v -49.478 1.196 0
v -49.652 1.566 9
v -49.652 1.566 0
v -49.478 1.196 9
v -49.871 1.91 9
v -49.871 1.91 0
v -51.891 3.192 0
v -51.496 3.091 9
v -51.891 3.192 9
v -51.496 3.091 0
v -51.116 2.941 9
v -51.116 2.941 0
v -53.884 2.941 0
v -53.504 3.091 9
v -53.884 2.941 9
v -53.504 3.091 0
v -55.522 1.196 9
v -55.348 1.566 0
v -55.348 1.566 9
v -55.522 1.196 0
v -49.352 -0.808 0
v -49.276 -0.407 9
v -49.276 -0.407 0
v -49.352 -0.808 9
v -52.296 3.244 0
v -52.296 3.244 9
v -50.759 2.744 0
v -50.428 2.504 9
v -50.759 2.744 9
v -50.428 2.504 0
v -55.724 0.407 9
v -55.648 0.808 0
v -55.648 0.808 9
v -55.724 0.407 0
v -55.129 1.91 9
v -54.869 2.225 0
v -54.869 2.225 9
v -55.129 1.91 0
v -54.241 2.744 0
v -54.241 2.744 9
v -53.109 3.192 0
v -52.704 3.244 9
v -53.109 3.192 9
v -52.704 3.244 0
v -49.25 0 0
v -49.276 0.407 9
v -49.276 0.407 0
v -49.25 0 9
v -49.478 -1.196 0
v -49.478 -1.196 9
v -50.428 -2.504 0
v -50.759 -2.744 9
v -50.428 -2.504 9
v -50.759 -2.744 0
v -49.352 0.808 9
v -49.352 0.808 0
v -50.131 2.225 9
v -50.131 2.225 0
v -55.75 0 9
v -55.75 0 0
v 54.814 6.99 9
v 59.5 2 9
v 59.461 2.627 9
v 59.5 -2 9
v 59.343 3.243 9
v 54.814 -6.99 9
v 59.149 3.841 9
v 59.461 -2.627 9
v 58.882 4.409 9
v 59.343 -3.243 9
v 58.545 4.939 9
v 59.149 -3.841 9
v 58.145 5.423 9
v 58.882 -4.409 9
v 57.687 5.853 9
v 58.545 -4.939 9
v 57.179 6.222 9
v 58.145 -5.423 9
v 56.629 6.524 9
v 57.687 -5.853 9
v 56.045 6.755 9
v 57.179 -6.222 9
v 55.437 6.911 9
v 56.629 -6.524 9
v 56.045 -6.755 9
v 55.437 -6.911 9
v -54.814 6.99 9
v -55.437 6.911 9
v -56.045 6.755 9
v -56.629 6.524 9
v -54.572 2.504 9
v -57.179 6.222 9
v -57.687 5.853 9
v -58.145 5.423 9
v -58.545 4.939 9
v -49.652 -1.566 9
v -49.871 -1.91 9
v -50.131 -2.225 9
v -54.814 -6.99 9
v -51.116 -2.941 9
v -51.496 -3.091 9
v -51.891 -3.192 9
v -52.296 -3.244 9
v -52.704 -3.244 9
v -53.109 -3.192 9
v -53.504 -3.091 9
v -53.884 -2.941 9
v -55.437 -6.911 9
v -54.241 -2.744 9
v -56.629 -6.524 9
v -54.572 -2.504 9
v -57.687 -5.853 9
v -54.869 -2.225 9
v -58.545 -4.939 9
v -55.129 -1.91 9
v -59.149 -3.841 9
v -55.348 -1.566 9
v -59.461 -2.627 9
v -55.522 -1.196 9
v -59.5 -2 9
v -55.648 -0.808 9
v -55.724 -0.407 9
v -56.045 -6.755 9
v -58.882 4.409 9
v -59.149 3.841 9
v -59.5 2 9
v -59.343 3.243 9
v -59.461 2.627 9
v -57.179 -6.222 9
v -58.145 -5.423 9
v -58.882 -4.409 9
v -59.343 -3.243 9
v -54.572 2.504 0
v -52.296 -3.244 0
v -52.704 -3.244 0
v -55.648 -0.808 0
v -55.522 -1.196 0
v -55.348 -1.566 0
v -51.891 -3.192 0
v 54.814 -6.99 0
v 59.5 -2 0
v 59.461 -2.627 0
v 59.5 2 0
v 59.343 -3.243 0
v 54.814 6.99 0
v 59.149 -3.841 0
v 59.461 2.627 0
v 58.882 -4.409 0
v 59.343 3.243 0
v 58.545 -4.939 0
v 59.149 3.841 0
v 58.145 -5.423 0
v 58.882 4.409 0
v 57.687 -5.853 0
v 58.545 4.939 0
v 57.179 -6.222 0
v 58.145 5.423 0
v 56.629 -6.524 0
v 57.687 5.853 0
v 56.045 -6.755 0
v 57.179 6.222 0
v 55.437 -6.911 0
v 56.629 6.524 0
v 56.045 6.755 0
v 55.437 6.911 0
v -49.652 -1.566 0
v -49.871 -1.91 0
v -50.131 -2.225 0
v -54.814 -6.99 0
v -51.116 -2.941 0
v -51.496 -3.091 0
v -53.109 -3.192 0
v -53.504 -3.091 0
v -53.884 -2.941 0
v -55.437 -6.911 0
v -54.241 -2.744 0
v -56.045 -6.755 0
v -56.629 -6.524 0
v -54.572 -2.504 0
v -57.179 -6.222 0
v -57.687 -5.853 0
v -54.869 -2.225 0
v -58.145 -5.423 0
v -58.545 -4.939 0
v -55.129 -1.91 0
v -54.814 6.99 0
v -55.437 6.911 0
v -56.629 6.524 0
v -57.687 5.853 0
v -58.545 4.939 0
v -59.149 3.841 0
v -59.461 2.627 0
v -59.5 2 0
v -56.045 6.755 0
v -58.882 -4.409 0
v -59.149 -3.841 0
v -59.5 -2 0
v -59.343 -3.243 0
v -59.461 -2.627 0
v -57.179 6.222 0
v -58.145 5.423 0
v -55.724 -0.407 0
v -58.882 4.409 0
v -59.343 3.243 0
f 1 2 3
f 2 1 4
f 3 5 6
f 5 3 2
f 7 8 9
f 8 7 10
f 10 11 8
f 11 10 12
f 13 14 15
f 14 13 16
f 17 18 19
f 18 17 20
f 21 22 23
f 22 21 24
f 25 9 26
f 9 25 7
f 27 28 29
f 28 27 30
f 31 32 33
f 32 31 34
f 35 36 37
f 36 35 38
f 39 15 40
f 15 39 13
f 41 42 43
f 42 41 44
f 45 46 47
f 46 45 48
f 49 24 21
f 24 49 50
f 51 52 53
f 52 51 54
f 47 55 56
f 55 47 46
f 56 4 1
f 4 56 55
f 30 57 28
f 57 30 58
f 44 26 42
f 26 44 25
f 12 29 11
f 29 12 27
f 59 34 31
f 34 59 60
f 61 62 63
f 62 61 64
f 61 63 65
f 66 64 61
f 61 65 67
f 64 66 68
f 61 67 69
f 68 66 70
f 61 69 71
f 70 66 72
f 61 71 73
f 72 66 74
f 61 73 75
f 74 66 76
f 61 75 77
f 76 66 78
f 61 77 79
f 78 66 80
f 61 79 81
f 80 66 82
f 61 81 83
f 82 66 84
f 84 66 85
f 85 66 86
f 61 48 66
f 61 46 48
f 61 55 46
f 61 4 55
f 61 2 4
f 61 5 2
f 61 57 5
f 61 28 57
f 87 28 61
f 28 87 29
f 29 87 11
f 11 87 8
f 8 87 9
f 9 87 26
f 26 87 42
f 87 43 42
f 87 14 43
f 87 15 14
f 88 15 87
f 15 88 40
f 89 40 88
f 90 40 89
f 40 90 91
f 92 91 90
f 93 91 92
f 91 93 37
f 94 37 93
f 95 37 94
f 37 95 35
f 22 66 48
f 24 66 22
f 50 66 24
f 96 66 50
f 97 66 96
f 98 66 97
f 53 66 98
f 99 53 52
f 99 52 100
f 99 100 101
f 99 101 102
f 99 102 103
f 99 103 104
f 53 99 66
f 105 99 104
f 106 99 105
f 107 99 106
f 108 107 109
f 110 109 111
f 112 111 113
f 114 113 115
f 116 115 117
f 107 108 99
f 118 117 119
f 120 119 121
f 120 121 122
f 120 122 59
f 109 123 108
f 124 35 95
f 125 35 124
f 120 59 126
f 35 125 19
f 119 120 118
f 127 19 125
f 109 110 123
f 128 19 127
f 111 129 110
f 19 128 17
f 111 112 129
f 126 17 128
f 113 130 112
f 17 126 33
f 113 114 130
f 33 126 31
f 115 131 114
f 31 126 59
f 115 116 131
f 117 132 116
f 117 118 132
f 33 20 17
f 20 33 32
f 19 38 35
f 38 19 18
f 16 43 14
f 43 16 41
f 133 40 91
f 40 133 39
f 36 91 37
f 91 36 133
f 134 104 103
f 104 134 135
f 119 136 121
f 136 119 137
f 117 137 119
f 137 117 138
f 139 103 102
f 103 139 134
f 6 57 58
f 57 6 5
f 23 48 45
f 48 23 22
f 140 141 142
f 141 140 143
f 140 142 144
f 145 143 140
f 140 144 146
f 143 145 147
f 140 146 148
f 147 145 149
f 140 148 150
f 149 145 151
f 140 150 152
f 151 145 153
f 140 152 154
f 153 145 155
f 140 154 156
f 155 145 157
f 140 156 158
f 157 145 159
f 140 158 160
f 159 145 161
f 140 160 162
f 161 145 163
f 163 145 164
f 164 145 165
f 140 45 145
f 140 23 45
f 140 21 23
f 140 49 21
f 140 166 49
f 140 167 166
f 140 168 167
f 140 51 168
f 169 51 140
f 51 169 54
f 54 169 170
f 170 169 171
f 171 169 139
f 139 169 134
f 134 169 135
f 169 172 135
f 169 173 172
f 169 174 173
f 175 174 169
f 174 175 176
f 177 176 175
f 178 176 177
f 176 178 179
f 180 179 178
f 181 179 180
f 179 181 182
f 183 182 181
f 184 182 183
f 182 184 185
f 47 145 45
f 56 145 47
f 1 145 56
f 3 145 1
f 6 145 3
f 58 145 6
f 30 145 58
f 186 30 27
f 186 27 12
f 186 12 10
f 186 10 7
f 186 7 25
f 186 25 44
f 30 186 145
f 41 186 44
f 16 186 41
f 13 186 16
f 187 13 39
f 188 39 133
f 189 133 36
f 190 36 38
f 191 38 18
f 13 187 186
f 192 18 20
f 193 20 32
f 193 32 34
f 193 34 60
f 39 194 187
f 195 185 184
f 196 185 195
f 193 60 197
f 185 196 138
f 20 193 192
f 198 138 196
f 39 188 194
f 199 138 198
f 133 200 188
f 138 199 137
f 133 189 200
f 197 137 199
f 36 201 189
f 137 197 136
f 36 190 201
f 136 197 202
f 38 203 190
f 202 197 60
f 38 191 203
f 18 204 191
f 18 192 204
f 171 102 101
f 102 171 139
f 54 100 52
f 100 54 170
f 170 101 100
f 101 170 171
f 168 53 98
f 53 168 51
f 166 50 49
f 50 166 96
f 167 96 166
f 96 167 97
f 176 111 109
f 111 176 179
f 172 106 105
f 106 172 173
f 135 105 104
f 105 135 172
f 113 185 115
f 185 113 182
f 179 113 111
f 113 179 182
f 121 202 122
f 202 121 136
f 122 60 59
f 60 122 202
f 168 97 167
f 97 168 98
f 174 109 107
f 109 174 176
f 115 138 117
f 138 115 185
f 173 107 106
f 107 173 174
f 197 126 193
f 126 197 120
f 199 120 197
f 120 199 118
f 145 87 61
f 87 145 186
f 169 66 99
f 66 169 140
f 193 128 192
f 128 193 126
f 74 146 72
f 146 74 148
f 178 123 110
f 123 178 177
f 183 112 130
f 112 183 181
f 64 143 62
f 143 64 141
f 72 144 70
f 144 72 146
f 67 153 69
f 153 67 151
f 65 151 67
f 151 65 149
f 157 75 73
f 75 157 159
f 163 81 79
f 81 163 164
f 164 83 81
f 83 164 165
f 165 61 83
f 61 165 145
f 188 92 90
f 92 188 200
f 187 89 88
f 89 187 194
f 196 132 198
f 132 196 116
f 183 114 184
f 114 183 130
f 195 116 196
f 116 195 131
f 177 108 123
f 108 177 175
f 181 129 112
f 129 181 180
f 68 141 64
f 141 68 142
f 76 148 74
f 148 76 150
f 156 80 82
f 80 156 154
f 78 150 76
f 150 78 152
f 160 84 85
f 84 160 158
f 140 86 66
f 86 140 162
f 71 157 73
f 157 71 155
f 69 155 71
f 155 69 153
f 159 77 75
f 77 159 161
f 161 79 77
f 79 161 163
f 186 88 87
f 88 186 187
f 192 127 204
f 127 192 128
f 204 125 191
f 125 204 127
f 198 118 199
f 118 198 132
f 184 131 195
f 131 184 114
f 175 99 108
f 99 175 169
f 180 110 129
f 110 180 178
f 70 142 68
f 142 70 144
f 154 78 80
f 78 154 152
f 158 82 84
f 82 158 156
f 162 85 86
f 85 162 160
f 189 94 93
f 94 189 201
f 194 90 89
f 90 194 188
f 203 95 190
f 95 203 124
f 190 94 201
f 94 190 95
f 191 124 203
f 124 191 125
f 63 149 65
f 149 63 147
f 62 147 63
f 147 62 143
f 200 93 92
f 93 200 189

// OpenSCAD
$fn = 50;


difference() {
	union() {
		hull() {
			translate(v = [-54.5000000000, 2.0000000000, 0]) {
				cylinder(h = 9, r = 5);
			}
			translate(v = [54.5000000000, 2.0000000000, 0]) {
				cylinder(h = 9, r = 5);
			}
			translate(v = [-54.5000000000, -2.0000000000, 0]) {
				cylinder(h = 9, r = 5);
			}
			translate(v = [54.5000000000, -2.0000000000, 0]) {
				cylinder(h = 9, r = 5);
			}
		}
	}
	union() {
		translate(v = [-52.5000000000, 0.0000000000, 0]) {
			cylinder(h = 9, r = 3.2500000000);
		}
		translate(v = [-52.5000000000, 0.0000000000, 0]) {
			cylinder(h = 9, r = 1.8000000000);
		}
		translate(v = [-52.5000000000, 0.0000000000, 0]) {
			cylinder(h = 9, r = 1.8000000000);
		}
		translate(v = [-52.5000000000, 0.0000000000, 0]) {
			cylinder(h = 9, r = 1.8000000000);
		}
	}
}
